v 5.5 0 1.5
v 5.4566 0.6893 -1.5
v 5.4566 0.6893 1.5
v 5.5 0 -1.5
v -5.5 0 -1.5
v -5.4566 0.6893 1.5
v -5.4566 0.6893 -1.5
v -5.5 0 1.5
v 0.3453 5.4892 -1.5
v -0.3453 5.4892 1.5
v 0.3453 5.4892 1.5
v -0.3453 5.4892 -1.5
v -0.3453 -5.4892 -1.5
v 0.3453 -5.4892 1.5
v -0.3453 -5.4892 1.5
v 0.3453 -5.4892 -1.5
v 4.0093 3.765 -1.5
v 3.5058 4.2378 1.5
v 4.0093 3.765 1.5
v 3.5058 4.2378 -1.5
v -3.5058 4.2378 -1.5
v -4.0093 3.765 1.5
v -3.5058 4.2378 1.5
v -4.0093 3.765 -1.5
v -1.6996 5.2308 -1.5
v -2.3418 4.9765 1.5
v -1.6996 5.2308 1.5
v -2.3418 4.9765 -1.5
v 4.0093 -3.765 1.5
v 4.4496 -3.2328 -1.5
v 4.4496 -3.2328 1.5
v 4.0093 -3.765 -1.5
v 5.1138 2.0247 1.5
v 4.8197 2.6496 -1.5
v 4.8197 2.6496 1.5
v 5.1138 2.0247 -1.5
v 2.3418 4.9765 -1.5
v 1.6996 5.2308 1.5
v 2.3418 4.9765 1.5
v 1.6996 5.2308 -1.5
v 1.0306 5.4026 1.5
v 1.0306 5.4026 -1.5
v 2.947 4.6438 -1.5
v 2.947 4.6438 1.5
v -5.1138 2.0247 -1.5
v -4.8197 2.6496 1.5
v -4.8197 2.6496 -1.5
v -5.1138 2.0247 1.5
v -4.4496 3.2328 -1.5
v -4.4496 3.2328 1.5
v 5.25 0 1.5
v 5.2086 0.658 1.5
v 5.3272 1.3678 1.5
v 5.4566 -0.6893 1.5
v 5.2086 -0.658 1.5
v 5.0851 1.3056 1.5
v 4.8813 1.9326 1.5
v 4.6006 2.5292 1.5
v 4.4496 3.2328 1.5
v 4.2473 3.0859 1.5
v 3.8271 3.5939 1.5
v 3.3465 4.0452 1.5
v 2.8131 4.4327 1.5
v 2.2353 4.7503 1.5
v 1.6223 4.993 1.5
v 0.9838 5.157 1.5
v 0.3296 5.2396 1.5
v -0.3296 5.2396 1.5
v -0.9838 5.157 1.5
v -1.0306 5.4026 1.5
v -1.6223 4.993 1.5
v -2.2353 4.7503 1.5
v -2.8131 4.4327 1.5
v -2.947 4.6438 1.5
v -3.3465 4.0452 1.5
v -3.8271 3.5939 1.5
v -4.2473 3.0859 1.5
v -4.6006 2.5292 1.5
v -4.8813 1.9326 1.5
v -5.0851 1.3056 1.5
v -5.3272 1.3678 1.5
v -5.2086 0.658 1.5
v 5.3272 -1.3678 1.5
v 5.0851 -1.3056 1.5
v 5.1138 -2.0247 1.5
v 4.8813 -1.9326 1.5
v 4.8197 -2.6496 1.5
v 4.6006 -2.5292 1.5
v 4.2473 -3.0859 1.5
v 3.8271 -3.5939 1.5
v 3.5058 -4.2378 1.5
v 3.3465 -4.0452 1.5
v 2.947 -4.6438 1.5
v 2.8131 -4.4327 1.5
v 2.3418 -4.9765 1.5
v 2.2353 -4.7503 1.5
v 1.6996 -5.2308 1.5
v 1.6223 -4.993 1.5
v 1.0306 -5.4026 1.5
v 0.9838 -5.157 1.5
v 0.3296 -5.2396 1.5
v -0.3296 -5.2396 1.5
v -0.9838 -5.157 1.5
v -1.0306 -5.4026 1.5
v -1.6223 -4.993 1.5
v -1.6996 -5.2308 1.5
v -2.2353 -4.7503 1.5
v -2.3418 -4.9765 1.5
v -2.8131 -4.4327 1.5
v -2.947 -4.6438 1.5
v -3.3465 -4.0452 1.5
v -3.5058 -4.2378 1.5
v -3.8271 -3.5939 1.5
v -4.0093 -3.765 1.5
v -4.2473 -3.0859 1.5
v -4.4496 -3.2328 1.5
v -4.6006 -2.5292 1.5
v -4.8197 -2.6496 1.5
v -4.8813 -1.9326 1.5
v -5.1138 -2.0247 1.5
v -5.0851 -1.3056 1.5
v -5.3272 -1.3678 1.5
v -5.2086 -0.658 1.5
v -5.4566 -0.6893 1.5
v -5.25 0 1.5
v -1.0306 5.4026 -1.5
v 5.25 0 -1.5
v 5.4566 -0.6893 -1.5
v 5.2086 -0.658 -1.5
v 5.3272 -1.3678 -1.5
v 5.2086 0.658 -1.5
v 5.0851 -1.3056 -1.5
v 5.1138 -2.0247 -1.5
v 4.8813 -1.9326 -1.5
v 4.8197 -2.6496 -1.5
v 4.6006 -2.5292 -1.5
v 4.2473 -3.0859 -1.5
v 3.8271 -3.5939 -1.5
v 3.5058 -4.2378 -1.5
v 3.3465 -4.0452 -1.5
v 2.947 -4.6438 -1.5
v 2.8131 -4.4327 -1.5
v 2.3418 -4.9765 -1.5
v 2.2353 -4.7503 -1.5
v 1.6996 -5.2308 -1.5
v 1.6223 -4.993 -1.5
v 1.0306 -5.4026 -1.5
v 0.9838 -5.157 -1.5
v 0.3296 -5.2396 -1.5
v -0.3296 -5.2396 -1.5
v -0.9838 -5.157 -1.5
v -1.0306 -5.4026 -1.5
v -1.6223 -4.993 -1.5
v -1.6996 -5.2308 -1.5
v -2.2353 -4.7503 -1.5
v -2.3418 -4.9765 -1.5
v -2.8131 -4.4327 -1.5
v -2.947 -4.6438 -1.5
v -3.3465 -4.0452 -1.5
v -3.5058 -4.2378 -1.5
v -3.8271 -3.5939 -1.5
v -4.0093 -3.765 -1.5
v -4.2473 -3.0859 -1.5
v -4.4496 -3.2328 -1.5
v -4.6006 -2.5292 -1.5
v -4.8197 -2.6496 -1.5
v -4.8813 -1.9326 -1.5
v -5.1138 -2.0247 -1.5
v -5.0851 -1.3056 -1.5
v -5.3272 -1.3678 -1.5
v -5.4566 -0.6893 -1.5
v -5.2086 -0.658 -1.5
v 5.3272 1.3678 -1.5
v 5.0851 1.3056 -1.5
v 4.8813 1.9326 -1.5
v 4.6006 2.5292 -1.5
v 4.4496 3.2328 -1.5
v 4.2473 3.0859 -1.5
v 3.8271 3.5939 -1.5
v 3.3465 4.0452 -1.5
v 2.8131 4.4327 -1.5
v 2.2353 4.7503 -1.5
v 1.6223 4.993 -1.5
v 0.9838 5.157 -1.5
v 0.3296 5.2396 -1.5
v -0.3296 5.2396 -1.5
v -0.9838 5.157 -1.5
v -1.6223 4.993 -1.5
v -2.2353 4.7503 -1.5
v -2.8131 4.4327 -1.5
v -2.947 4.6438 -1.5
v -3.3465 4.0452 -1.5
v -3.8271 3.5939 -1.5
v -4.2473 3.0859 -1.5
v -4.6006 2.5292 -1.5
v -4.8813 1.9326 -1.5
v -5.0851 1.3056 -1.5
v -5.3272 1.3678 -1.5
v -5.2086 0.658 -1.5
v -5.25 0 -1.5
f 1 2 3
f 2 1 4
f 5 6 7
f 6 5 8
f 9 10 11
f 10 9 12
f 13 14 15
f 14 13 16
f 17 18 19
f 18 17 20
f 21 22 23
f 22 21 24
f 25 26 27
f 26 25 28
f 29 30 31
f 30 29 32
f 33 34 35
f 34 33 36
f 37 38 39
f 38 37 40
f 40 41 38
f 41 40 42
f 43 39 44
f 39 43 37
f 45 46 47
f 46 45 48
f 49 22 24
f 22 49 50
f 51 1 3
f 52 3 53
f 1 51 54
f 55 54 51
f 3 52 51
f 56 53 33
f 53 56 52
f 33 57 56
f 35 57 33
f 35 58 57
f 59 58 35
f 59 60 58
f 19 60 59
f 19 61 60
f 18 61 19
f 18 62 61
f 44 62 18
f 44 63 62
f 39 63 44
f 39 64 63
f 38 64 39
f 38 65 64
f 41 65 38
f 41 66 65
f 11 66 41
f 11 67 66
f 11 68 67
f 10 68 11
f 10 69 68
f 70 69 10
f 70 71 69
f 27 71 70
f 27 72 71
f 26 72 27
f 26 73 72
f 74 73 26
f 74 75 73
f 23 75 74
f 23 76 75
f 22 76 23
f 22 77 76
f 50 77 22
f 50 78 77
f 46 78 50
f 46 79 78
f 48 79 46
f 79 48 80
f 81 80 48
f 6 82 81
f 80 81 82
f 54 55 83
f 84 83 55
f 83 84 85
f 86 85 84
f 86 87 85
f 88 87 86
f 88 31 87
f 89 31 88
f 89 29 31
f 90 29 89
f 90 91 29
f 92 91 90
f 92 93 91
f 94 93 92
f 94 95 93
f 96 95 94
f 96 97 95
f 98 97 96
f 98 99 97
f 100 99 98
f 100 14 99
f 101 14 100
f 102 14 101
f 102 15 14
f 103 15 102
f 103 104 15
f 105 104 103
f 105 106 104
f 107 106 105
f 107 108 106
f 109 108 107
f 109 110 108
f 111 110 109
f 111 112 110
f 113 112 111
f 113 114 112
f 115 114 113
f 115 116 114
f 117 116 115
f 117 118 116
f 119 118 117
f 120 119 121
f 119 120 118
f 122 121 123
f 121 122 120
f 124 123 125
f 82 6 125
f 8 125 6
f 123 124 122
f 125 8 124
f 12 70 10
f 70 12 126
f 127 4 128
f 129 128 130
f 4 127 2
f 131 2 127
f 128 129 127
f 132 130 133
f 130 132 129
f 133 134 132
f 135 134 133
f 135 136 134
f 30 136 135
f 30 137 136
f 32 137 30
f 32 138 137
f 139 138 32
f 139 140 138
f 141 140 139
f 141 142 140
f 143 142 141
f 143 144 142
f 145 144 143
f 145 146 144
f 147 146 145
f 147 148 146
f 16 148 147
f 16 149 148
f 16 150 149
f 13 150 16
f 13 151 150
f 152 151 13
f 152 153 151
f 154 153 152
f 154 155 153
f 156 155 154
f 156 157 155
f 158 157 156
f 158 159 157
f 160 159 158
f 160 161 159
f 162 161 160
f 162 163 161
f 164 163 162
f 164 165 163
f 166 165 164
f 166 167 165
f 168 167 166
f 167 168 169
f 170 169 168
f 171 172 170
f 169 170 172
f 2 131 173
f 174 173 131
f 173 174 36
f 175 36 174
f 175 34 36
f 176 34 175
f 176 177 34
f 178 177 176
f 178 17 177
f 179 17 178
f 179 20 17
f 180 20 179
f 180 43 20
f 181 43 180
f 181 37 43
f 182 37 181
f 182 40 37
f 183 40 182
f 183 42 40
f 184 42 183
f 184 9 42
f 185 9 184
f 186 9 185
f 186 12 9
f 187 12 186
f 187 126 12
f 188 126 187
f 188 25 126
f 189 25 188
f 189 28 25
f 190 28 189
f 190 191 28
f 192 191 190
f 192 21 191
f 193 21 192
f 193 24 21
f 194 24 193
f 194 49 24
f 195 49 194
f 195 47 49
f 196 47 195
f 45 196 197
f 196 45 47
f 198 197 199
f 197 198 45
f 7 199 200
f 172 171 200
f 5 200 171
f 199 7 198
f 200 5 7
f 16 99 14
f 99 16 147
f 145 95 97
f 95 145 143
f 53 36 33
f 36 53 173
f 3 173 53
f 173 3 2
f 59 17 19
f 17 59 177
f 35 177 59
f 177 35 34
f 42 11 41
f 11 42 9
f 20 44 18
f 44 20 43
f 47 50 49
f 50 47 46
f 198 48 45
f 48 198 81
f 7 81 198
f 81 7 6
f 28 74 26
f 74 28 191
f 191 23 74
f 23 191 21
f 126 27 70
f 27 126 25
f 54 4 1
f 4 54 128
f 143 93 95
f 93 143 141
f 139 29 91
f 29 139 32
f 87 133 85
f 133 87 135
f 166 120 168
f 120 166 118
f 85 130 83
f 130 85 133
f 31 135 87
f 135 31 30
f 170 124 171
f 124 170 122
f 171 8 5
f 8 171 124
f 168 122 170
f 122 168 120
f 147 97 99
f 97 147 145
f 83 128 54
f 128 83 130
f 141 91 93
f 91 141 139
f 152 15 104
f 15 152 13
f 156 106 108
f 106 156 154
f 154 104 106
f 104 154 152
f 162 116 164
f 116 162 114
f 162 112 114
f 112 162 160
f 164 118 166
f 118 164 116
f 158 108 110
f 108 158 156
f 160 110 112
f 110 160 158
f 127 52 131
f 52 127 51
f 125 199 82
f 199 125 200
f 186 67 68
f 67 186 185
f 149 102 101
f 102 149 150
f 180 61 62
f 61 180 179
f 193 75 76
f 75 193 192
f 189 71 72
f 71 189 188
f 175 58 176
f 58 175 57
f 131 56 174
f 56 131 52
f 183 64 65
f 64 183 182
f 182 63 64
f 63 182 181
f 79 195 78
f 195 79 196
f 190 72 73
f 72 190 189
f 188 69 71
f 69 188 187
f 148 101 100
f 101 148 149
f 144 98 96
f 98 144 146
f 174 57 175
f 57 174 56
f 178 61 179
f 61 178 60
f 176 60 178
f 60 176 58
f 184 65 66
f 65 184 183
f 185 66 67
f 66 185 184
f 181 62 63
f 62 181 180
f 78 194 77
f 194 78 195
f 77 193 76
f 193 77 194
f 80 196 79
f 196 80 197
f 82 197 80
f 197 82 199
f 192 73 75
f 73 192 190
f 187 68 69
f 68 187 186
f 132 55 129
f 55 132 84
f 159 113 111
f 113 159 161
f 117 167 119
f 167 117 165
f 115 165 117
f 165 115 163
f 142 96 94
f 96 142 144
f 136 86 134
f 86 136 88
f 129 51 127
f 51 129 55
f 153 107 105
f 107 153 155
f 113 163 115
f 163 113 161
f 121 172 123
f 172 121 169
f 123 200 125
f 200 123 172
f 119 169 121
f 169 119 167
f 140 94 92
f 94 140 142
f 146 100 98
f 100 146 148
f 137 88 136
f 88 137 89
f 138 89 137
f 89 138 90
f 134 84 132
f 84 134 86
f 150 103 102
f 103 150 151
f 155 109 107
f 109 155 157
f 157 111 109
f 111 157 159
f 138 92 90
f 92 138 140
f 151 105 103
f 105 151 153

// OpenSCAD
$fn = 50;


difference() {
	union() {
		translate(v = [0, 0, -1.5000000000]) {
			cylinder(h = 3, r = 5.5000000000);
		}
	}
	union() {
		translate(v = [0, 0, -100.0000000000]) {
			cylinder(h = 200, r = 5.2500000000);
		}
	}
}
